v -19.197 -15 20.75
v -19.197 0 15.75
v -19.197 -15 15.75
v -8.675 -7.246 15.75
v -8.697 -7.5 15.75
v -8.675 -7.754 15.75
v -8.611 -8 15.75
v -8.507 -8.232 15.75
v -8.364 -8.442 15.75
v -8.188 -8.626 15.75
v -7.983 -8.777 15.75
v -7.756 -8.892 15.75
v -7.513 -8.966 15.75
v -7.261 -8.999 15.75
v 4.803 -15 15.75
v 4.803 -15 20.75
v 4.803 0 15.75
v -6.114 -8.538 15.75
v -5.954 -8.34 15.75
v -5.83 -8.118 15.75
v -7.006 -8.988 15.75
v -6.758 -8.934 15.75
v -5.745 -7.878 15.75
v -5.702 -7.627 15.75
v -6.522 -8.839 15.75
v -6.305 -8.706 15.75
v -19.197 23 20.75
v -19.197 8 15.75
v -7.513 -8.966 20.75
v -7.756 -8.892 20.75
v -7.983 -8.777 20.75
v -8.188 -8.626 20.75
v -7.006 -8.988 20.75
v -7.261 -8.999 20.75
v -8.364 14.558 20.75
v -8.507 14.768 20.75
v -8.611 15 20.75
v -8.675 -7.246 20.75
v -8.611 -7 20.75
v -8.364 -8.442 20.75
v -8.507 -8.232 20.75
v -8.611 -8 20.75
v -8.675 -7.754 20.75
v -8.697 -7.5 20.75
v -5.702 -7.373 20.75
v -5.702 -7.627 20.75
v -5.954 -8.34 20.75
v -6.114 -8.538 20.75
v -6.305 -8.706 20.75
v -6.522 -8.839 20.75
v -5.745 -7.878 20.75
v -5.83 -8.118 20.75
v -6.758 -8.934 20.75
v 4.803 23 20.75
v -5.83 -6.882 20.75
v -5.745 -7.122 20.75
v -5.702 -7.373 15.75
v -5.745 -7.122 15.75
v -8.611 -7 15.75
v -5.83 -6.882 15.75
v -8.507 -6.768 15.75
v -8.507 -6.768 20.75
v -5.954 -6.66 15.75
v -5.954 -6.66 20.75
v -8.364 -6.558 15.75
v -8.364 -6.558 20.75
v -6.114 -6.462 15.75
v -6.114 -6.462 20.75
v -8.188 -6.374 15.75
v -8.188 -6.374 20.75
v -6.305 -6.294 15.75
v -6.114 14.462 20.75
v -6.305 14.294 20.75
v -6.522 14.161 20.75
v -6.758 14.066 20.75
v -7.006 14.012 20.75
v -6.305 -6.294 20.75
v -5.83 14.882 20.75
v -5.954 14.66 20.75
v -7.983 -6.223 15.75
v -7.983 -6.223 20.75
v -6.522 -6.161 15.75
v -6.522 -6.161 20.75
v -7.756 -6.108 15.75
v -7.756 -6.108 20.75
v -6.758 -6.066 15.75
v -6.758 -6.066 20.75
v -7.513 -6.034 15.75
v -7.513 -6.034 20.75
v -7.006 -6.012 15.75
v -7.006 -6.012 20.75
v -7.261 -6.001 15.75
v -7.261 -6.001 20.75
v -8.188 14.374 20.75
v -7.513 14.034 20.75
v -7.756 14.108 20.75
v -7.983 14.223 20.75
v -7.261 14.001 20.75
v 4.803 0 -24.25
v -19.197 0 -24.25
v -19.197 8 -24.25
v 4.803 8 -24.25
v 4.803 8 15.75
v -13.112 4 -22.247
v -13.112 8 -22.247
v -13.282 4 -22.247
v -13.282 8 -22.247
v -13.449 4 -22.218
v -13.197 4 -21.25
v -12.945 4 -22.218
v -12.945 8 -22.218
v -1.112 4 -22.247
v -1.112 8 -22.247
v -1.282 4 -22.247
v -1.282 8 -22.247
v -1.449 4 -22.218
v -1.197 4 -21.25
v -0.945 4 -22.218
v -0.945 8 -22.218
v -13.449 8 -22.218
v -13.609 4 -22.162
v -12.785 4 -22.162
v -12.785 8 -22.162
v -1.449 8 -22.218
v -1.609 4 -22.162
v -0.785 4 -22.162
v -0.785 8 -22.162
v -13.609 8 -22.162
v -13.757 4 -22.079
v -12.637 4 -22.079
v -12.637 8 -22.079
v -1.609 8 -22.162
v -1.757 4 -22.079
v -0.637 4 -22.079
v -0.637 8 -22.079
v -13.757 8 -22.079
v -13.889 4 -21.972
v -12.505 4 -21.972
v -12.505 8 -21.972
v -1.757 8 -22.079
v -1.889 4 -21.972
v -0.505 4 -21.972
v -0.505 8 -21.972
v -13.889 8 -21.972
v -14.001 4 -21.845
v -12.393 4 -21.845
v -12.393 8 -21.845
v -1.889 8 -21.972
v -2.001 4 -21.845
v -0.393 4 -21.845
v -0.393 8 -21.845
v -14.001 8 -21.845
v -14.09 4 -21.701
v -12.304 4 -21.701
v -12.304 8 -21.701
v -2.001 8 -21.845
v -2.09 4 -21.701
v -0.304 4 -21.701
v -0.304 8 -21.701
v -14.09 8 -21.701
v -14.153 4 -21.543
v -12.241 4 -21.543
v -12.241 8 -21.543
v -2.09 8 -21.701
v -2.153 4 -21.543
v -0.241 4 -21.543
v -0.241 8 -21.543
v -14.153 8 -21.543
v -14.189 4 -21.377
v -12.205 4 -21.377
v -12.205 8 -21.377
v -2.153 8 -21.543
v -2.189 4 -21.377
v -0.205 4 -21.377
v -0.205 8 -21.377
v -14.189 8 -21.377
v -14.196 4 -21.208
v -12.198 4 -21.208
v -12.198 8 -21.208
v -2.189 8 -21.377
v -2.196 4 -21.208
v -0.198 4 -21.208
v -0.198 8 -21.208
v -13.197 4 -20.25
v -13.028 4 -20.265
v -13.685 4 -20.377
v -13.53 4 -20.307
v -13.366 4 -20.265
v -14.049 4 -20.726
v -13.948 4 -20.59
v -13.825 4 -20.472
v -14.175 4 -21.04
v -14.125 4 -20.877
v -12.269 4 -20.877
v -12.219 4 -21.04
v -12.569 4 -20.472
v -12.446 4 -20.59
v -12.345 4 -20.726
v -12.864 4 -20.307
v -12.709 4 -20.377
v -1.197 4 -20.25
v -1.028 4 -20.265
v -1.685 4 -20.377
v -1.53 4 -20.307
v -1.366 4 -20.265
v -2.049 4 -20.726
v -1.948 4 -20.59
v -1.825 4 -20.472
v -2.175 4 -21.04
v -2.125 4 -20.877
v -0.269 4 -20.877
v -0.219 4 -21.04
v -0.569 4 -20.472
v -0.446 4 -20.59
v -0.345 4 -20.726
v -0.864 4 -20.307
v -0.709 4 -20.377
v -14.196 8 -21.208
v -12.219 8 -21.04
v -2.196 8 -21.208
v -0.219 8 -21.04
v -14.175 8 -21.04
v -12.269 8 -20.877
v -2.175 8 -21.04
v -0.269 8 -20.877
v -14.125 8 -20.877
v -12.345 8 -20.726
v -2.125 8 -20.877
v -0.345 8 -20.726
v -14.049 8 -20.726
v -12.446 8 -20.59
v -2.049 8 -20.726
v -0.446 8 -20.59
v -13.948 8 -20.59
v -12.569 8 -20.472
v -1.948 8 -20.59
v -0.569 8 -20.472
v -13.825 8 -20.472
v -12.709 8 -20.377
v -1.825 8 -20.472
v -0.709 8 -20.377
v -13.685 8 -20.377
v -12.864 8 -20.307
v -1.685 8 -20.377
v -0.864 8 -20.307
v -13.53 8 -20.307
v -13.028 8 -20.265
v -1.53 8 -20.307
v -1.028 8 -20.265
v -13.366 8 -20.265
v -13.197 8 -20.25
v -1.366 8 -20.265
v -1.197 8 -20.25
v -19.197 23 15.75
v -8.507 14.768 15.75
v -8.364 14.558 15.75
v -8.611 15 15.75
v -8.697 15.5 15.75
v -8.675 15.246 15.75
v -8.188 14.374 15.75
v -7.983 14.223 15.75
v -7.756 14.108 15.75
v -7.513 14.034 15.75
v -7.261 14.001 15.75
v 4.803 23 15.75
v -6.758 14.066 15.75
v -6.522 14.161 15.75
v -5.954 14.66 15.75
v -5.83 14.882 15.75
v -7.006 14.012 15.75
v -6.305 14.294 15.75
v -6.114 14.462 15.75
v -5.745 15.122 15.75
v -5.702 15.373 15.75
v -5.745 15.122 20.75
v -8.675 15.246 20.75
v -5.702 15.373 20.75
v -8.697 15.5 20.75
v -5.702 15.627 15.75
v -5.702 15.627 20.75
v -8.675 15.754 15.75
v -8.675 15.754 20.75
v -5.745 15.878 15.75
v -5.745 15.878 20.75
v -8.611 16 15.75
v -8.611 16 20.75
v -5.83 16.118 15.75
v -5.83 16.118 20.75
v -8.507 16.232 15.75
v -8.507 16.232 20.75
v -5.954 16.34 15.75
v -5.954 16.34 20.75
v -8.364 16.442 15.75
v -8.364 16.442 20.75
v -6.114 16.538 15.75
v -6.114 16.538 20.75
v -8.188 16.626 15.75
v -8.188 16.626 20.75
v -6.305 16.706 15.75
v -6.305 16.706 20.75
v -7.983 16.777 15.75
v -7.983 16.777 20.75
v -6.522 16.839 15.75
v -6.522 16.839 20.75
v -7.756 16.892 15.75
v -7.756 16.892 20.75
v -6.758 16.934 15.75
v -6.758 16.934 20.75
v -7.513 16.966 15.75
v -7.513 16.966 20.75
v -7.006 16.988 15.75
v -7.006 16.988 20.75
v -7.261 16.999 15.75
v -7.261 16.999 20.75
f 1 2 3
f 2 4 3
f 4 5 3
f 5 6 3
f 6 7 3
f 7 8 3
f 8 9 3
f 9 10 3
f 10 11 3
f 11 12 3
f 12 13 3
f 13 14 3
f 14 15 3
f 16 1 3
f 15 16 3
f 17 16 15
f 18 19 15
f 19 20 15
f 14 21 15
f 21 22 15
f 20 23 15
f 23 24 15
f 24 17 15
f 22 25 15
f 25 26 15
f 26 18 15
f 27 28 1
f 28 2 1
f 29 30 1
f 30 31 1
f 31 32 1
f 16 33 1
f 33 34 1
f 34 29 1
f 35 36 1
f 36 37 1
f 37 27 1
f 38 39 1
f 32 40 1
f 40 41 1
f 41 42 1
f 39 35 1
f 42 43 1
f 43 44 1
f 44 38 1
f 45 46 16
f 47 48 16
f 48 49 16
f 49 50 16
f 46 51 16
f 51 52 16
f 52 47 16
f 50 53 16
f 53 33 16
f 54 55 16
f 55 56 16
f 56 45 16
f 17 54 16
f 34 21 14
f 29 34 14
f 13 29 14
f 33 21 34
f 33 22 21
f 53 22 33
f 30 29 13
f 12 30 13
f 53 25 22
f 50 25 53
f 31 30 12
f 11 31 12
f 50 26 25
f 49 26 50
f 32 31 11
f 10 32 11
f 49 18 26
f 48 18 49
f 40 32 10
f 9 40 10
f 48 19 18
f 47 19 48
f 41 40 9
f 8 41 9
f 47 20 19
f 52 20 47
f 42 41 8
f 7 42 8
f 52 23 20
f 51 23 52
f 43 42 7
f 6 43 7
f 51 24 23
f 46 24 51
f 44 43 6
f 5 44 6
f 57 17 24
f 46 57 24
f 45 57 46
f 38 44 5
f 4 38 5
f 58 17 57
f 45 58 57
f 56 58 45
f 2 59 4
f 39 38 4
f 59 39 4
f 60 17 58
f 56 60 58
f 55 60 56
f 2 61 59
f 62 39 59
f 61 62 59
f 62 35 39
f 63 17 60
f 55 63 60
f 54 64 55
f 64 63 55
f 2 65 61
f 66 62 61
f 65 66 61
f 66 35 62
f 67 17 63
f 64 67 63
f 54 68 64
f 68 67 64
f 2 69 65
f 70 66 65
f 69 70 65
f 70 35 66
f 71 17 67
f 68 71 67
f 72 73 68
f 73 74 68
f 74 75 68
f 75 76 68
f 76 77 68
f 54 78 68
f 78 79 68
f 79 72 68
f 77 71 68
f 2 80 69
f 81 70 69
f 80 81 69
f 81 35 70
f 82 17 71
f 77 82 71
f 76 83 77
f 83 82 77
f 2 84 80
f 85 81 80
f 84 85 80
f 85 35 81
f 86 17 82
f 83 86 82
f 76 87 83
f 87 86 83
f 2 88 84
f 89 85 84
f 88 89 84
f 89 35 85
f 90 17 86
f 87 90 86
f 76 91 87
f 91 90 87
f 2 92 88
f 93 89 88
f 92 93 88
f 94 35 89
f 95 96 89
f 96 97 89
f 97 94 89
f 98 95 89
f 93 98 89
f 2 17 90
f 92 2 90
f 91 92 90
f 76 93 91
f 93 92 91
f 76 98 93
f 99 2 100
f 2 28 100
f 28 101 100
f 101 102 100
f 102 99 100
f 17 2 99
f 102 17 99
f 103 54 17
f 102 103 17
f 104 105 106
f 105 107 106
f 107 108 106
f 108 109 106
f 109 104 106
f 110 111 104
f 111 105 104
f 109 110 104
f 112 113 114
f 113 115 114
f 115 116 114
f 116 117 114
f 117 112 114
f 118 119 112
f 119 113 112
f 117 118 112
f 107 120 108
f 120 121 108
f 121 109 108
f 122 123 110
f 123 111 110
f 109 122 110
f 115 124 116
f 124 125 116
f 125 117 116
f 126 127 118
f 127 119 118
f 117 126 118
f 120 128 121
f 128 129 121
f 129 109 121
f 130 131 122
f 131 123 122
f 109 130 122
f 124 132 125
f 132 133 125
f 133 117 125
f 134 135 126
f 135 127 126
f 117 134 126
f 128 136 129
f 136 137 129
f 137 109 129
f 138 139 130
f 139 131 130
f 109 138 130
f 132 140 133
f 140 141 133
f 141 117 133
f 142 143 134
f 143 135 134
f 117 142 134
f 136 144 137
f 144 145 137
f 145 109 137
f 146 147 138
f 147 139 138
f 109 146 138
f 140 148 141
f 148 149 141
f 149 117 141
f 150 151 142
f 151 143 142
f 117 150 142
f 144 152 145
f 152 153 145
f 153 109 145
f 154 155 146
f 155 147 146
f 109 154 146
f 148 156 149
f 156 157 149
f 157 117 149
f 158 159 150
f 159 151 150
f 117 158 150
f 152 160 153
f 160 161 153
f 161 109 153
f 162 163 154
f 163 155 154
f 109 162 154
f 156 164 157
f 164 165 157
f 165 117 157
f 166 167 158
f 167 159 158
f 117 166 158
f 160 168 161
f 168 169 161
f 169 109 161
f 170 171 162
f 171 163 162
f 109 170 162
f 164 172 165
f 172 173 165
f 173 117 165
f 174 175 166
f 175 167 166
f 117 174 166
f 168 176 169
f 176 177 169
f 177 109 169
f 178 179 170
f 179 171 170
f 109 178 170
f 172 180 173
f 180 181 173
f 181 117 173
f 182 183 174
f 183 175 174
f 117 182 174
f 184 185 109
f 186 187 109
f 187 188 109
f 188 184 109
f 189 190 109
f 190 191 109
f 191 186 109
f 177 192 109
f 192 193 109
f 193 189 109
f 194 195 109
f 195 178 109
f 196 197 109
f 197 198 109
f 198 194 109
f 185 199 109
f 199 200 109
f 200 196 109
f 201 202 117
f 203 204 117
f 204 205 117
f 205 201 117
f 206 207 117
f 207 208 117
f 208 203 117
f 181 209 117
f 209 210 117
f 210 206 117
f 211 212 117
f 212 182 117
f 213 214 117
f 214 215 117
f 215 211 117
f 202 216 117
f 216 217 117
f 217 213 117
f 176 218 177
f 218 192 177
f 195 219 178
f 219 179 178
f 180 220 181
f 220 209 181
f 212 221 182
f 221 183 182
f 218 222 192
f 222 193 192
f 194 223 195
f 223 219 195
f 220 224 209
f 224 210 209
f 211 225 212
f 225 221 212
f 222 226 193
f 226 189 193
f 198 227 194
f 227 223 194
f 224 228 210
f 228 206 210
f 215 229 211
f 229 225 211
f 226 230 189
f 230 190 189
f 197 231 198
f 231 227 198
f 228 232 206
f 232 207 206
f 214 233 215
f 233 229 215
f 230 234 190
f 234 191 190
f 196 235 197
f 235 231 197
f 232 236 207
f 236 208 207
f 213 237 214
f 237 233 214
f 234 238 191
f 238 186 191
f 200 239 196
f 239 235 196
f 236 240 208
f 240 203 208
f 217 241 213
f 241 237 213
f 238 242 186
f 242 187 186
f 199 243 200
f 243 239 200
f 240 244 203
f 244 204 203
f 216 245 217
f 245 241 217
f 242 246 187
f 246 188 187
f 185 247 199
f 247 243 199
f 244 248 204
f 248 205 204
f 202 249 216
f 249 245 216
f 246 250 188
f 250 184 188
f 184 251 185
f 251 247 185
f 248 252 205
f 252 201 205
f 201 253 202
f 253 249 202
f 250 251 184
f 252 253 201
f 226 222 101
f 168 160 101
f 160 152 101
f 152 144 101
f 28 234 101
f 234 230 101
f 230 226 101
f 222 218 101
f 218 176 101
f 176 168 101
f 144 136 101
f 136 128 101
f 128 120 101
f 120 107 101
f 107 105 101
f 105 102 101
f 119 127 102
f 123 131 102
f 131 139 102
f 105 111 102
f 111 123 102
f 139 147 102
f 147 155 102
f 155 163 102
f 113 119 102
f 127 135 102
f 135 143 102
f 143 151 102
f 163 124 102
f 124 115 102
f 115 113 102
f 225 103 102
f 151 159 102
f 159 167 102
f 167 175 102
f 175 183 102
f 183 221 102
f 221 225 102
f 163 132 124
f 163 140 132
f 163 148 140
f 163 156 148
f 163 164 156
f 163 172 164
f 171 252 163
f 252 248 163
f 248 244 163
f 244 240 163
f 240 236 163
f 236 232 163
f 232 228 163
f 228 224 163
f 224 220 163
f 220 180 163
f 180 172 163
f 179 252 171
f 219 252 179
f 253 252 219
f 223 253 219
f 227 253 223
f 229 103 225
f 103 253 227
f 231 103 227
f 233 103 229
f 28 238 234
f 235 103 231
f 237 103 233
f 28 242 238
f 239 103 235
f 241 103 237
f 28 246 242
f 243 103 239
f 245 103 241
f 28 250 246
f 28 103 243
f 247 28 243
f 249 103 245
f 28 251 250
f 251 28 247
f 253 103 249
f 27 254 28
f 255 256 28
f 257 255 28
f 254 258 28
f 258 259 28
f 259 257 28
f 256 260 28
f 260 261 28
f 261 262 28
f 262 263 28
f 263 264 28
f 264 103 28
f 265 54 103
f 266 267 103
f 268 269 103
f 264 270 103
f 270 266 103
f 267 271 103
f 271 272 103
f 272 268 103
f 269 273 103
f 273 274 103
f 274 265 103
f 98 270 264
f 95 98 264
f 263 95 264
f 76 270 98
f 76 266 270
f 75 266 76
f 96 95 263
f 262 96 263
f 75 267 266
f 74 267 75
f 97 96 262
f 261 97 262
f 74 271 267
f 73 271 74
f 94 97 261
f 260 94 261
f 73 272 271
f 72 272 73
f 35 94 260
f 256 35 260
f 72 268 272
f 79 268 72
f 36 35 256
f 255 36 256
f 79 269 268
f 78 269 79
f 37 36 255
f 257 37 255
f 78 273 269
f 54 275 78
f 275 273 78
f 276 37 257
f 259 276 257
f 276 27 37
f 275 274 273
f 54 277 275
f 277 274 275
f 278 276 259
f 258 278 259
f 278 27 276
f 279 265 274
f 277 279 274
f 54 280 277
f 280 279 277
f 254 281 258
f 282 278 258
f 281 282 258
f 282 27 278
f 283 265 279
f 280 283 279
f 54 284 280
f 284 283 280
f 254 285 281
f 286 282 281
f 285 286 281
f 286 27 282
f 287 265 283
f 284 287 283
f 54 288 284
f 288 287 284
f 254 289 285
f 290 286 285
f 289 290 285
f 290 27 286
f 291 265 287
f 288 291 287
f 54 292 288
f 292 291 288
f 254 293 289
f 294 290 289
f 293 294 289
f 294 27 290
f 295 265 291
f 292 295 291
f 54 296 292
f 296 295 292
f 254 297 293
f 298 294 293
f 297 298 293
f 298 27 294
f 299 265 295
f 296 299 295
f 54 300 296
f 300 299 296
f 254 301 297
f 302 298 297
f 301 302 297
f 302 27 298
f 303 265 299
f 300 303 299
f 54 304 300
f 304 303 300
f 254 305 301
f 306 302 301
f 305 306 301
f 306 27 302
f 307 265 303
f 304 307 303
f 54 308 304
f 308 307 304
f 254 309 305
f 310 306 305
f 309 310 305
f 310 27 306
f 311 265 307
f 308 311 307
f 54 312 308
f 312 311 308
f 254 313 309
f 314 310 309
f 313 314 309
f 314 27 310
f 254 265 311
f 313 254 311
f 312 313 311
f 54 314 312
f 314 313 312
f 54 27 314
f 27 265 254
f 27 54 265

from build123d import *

# Parameters (mm, degrees)
SKETCH2_W           = 24
SKETCH2_H           = 45
BOSS_EXTRUDE1_DEPTH = 8
SKETCH5_W           = 24
SKETCH5_H           = 5
BOSS_EXTRUDE2_DEPTH = 15
SKETCH6_W           = 24
SKETCH6_H           = 5
BOSS_EXTRUDE3_DEPTH = 15
SKETCH7_R           = 1.5
CUT_EXTRUDE1_DEPTH  = 5
SKETCH8_R           = 1
CUT_EXTRUDE2_DEPTH  = 4


with BuildPart() as part:
    # Sketch2 → Boss-Extrude1 (new body)
    with BuildSketch(Plane(origin=(0, 0, 0), x_dir=(1, 0, 0), z_dir=(0, 1, 0))):
        with Locations((-7.196993829, 1.750308141)):
            Rectangle(SKETCH2_W, SKETCH2_H)
    extrude(amount=BOSS_EXTRUDE1_DEPTH)

    # Sketch5 → Boss-Extrude2 (add)
    with BuildSketch(Plane(origin=(0, 8, 0), x_dir=(1, 0, 0), z_dir=(0, 1, 0))):
        with Locations((-7.196993829, -18.249691859)):
            Rectangle(SKETCH5_W, SKETCH5_H)
    extrude(amount=BOSS_EXTRUDE2_DEPTH)

    # Sketch6 → Boss-Extrude3 (add)
    with BuildSketch(Plane.XZ):
        with Locations((-7.196993829, 18.249691859)):
            Rectangle(SKETCH6_W, SKETCH6_H)
    extrude(amount=BOSS_EXTRUDE3_DEPTH)

    # Sketch7 → Cut-Extrude1 (cut)
    with BuildSketch(Plane(origin=(0, 0, 15.749691859), x_dir=(-1, 0, 0), z_dir=(0, 0, -1))):
        with Locations((7.196993829, 15.5)):
            Circle(SKETCH7_R)
        with Locations((7.196993829, -7.5)):
            Circle(SKETCH7_R)
    extrude(amount=-CUT_EXTRUDE1_DEPTH, mode=Mode.SUBTRACT)

    # Sketch8 → Cut-Extrude2 (cut)
    with BuildSketch(Plane(origin=(0, 8, 0), x_dir=(1, 0, 0), z_dir=(0, 1, 0))):
        with Locations((-13.196993829, 21.250308141)):
            Circle(SKETCH8_R)
        with Locations((-1.196993829, 21.250308141)):
            Circle(SKETCH8_R)
    extrude(amount=-CUT_EXTRUDE2_DEPTH, mode=Mode.SUBTRACT)


solid = part.part
